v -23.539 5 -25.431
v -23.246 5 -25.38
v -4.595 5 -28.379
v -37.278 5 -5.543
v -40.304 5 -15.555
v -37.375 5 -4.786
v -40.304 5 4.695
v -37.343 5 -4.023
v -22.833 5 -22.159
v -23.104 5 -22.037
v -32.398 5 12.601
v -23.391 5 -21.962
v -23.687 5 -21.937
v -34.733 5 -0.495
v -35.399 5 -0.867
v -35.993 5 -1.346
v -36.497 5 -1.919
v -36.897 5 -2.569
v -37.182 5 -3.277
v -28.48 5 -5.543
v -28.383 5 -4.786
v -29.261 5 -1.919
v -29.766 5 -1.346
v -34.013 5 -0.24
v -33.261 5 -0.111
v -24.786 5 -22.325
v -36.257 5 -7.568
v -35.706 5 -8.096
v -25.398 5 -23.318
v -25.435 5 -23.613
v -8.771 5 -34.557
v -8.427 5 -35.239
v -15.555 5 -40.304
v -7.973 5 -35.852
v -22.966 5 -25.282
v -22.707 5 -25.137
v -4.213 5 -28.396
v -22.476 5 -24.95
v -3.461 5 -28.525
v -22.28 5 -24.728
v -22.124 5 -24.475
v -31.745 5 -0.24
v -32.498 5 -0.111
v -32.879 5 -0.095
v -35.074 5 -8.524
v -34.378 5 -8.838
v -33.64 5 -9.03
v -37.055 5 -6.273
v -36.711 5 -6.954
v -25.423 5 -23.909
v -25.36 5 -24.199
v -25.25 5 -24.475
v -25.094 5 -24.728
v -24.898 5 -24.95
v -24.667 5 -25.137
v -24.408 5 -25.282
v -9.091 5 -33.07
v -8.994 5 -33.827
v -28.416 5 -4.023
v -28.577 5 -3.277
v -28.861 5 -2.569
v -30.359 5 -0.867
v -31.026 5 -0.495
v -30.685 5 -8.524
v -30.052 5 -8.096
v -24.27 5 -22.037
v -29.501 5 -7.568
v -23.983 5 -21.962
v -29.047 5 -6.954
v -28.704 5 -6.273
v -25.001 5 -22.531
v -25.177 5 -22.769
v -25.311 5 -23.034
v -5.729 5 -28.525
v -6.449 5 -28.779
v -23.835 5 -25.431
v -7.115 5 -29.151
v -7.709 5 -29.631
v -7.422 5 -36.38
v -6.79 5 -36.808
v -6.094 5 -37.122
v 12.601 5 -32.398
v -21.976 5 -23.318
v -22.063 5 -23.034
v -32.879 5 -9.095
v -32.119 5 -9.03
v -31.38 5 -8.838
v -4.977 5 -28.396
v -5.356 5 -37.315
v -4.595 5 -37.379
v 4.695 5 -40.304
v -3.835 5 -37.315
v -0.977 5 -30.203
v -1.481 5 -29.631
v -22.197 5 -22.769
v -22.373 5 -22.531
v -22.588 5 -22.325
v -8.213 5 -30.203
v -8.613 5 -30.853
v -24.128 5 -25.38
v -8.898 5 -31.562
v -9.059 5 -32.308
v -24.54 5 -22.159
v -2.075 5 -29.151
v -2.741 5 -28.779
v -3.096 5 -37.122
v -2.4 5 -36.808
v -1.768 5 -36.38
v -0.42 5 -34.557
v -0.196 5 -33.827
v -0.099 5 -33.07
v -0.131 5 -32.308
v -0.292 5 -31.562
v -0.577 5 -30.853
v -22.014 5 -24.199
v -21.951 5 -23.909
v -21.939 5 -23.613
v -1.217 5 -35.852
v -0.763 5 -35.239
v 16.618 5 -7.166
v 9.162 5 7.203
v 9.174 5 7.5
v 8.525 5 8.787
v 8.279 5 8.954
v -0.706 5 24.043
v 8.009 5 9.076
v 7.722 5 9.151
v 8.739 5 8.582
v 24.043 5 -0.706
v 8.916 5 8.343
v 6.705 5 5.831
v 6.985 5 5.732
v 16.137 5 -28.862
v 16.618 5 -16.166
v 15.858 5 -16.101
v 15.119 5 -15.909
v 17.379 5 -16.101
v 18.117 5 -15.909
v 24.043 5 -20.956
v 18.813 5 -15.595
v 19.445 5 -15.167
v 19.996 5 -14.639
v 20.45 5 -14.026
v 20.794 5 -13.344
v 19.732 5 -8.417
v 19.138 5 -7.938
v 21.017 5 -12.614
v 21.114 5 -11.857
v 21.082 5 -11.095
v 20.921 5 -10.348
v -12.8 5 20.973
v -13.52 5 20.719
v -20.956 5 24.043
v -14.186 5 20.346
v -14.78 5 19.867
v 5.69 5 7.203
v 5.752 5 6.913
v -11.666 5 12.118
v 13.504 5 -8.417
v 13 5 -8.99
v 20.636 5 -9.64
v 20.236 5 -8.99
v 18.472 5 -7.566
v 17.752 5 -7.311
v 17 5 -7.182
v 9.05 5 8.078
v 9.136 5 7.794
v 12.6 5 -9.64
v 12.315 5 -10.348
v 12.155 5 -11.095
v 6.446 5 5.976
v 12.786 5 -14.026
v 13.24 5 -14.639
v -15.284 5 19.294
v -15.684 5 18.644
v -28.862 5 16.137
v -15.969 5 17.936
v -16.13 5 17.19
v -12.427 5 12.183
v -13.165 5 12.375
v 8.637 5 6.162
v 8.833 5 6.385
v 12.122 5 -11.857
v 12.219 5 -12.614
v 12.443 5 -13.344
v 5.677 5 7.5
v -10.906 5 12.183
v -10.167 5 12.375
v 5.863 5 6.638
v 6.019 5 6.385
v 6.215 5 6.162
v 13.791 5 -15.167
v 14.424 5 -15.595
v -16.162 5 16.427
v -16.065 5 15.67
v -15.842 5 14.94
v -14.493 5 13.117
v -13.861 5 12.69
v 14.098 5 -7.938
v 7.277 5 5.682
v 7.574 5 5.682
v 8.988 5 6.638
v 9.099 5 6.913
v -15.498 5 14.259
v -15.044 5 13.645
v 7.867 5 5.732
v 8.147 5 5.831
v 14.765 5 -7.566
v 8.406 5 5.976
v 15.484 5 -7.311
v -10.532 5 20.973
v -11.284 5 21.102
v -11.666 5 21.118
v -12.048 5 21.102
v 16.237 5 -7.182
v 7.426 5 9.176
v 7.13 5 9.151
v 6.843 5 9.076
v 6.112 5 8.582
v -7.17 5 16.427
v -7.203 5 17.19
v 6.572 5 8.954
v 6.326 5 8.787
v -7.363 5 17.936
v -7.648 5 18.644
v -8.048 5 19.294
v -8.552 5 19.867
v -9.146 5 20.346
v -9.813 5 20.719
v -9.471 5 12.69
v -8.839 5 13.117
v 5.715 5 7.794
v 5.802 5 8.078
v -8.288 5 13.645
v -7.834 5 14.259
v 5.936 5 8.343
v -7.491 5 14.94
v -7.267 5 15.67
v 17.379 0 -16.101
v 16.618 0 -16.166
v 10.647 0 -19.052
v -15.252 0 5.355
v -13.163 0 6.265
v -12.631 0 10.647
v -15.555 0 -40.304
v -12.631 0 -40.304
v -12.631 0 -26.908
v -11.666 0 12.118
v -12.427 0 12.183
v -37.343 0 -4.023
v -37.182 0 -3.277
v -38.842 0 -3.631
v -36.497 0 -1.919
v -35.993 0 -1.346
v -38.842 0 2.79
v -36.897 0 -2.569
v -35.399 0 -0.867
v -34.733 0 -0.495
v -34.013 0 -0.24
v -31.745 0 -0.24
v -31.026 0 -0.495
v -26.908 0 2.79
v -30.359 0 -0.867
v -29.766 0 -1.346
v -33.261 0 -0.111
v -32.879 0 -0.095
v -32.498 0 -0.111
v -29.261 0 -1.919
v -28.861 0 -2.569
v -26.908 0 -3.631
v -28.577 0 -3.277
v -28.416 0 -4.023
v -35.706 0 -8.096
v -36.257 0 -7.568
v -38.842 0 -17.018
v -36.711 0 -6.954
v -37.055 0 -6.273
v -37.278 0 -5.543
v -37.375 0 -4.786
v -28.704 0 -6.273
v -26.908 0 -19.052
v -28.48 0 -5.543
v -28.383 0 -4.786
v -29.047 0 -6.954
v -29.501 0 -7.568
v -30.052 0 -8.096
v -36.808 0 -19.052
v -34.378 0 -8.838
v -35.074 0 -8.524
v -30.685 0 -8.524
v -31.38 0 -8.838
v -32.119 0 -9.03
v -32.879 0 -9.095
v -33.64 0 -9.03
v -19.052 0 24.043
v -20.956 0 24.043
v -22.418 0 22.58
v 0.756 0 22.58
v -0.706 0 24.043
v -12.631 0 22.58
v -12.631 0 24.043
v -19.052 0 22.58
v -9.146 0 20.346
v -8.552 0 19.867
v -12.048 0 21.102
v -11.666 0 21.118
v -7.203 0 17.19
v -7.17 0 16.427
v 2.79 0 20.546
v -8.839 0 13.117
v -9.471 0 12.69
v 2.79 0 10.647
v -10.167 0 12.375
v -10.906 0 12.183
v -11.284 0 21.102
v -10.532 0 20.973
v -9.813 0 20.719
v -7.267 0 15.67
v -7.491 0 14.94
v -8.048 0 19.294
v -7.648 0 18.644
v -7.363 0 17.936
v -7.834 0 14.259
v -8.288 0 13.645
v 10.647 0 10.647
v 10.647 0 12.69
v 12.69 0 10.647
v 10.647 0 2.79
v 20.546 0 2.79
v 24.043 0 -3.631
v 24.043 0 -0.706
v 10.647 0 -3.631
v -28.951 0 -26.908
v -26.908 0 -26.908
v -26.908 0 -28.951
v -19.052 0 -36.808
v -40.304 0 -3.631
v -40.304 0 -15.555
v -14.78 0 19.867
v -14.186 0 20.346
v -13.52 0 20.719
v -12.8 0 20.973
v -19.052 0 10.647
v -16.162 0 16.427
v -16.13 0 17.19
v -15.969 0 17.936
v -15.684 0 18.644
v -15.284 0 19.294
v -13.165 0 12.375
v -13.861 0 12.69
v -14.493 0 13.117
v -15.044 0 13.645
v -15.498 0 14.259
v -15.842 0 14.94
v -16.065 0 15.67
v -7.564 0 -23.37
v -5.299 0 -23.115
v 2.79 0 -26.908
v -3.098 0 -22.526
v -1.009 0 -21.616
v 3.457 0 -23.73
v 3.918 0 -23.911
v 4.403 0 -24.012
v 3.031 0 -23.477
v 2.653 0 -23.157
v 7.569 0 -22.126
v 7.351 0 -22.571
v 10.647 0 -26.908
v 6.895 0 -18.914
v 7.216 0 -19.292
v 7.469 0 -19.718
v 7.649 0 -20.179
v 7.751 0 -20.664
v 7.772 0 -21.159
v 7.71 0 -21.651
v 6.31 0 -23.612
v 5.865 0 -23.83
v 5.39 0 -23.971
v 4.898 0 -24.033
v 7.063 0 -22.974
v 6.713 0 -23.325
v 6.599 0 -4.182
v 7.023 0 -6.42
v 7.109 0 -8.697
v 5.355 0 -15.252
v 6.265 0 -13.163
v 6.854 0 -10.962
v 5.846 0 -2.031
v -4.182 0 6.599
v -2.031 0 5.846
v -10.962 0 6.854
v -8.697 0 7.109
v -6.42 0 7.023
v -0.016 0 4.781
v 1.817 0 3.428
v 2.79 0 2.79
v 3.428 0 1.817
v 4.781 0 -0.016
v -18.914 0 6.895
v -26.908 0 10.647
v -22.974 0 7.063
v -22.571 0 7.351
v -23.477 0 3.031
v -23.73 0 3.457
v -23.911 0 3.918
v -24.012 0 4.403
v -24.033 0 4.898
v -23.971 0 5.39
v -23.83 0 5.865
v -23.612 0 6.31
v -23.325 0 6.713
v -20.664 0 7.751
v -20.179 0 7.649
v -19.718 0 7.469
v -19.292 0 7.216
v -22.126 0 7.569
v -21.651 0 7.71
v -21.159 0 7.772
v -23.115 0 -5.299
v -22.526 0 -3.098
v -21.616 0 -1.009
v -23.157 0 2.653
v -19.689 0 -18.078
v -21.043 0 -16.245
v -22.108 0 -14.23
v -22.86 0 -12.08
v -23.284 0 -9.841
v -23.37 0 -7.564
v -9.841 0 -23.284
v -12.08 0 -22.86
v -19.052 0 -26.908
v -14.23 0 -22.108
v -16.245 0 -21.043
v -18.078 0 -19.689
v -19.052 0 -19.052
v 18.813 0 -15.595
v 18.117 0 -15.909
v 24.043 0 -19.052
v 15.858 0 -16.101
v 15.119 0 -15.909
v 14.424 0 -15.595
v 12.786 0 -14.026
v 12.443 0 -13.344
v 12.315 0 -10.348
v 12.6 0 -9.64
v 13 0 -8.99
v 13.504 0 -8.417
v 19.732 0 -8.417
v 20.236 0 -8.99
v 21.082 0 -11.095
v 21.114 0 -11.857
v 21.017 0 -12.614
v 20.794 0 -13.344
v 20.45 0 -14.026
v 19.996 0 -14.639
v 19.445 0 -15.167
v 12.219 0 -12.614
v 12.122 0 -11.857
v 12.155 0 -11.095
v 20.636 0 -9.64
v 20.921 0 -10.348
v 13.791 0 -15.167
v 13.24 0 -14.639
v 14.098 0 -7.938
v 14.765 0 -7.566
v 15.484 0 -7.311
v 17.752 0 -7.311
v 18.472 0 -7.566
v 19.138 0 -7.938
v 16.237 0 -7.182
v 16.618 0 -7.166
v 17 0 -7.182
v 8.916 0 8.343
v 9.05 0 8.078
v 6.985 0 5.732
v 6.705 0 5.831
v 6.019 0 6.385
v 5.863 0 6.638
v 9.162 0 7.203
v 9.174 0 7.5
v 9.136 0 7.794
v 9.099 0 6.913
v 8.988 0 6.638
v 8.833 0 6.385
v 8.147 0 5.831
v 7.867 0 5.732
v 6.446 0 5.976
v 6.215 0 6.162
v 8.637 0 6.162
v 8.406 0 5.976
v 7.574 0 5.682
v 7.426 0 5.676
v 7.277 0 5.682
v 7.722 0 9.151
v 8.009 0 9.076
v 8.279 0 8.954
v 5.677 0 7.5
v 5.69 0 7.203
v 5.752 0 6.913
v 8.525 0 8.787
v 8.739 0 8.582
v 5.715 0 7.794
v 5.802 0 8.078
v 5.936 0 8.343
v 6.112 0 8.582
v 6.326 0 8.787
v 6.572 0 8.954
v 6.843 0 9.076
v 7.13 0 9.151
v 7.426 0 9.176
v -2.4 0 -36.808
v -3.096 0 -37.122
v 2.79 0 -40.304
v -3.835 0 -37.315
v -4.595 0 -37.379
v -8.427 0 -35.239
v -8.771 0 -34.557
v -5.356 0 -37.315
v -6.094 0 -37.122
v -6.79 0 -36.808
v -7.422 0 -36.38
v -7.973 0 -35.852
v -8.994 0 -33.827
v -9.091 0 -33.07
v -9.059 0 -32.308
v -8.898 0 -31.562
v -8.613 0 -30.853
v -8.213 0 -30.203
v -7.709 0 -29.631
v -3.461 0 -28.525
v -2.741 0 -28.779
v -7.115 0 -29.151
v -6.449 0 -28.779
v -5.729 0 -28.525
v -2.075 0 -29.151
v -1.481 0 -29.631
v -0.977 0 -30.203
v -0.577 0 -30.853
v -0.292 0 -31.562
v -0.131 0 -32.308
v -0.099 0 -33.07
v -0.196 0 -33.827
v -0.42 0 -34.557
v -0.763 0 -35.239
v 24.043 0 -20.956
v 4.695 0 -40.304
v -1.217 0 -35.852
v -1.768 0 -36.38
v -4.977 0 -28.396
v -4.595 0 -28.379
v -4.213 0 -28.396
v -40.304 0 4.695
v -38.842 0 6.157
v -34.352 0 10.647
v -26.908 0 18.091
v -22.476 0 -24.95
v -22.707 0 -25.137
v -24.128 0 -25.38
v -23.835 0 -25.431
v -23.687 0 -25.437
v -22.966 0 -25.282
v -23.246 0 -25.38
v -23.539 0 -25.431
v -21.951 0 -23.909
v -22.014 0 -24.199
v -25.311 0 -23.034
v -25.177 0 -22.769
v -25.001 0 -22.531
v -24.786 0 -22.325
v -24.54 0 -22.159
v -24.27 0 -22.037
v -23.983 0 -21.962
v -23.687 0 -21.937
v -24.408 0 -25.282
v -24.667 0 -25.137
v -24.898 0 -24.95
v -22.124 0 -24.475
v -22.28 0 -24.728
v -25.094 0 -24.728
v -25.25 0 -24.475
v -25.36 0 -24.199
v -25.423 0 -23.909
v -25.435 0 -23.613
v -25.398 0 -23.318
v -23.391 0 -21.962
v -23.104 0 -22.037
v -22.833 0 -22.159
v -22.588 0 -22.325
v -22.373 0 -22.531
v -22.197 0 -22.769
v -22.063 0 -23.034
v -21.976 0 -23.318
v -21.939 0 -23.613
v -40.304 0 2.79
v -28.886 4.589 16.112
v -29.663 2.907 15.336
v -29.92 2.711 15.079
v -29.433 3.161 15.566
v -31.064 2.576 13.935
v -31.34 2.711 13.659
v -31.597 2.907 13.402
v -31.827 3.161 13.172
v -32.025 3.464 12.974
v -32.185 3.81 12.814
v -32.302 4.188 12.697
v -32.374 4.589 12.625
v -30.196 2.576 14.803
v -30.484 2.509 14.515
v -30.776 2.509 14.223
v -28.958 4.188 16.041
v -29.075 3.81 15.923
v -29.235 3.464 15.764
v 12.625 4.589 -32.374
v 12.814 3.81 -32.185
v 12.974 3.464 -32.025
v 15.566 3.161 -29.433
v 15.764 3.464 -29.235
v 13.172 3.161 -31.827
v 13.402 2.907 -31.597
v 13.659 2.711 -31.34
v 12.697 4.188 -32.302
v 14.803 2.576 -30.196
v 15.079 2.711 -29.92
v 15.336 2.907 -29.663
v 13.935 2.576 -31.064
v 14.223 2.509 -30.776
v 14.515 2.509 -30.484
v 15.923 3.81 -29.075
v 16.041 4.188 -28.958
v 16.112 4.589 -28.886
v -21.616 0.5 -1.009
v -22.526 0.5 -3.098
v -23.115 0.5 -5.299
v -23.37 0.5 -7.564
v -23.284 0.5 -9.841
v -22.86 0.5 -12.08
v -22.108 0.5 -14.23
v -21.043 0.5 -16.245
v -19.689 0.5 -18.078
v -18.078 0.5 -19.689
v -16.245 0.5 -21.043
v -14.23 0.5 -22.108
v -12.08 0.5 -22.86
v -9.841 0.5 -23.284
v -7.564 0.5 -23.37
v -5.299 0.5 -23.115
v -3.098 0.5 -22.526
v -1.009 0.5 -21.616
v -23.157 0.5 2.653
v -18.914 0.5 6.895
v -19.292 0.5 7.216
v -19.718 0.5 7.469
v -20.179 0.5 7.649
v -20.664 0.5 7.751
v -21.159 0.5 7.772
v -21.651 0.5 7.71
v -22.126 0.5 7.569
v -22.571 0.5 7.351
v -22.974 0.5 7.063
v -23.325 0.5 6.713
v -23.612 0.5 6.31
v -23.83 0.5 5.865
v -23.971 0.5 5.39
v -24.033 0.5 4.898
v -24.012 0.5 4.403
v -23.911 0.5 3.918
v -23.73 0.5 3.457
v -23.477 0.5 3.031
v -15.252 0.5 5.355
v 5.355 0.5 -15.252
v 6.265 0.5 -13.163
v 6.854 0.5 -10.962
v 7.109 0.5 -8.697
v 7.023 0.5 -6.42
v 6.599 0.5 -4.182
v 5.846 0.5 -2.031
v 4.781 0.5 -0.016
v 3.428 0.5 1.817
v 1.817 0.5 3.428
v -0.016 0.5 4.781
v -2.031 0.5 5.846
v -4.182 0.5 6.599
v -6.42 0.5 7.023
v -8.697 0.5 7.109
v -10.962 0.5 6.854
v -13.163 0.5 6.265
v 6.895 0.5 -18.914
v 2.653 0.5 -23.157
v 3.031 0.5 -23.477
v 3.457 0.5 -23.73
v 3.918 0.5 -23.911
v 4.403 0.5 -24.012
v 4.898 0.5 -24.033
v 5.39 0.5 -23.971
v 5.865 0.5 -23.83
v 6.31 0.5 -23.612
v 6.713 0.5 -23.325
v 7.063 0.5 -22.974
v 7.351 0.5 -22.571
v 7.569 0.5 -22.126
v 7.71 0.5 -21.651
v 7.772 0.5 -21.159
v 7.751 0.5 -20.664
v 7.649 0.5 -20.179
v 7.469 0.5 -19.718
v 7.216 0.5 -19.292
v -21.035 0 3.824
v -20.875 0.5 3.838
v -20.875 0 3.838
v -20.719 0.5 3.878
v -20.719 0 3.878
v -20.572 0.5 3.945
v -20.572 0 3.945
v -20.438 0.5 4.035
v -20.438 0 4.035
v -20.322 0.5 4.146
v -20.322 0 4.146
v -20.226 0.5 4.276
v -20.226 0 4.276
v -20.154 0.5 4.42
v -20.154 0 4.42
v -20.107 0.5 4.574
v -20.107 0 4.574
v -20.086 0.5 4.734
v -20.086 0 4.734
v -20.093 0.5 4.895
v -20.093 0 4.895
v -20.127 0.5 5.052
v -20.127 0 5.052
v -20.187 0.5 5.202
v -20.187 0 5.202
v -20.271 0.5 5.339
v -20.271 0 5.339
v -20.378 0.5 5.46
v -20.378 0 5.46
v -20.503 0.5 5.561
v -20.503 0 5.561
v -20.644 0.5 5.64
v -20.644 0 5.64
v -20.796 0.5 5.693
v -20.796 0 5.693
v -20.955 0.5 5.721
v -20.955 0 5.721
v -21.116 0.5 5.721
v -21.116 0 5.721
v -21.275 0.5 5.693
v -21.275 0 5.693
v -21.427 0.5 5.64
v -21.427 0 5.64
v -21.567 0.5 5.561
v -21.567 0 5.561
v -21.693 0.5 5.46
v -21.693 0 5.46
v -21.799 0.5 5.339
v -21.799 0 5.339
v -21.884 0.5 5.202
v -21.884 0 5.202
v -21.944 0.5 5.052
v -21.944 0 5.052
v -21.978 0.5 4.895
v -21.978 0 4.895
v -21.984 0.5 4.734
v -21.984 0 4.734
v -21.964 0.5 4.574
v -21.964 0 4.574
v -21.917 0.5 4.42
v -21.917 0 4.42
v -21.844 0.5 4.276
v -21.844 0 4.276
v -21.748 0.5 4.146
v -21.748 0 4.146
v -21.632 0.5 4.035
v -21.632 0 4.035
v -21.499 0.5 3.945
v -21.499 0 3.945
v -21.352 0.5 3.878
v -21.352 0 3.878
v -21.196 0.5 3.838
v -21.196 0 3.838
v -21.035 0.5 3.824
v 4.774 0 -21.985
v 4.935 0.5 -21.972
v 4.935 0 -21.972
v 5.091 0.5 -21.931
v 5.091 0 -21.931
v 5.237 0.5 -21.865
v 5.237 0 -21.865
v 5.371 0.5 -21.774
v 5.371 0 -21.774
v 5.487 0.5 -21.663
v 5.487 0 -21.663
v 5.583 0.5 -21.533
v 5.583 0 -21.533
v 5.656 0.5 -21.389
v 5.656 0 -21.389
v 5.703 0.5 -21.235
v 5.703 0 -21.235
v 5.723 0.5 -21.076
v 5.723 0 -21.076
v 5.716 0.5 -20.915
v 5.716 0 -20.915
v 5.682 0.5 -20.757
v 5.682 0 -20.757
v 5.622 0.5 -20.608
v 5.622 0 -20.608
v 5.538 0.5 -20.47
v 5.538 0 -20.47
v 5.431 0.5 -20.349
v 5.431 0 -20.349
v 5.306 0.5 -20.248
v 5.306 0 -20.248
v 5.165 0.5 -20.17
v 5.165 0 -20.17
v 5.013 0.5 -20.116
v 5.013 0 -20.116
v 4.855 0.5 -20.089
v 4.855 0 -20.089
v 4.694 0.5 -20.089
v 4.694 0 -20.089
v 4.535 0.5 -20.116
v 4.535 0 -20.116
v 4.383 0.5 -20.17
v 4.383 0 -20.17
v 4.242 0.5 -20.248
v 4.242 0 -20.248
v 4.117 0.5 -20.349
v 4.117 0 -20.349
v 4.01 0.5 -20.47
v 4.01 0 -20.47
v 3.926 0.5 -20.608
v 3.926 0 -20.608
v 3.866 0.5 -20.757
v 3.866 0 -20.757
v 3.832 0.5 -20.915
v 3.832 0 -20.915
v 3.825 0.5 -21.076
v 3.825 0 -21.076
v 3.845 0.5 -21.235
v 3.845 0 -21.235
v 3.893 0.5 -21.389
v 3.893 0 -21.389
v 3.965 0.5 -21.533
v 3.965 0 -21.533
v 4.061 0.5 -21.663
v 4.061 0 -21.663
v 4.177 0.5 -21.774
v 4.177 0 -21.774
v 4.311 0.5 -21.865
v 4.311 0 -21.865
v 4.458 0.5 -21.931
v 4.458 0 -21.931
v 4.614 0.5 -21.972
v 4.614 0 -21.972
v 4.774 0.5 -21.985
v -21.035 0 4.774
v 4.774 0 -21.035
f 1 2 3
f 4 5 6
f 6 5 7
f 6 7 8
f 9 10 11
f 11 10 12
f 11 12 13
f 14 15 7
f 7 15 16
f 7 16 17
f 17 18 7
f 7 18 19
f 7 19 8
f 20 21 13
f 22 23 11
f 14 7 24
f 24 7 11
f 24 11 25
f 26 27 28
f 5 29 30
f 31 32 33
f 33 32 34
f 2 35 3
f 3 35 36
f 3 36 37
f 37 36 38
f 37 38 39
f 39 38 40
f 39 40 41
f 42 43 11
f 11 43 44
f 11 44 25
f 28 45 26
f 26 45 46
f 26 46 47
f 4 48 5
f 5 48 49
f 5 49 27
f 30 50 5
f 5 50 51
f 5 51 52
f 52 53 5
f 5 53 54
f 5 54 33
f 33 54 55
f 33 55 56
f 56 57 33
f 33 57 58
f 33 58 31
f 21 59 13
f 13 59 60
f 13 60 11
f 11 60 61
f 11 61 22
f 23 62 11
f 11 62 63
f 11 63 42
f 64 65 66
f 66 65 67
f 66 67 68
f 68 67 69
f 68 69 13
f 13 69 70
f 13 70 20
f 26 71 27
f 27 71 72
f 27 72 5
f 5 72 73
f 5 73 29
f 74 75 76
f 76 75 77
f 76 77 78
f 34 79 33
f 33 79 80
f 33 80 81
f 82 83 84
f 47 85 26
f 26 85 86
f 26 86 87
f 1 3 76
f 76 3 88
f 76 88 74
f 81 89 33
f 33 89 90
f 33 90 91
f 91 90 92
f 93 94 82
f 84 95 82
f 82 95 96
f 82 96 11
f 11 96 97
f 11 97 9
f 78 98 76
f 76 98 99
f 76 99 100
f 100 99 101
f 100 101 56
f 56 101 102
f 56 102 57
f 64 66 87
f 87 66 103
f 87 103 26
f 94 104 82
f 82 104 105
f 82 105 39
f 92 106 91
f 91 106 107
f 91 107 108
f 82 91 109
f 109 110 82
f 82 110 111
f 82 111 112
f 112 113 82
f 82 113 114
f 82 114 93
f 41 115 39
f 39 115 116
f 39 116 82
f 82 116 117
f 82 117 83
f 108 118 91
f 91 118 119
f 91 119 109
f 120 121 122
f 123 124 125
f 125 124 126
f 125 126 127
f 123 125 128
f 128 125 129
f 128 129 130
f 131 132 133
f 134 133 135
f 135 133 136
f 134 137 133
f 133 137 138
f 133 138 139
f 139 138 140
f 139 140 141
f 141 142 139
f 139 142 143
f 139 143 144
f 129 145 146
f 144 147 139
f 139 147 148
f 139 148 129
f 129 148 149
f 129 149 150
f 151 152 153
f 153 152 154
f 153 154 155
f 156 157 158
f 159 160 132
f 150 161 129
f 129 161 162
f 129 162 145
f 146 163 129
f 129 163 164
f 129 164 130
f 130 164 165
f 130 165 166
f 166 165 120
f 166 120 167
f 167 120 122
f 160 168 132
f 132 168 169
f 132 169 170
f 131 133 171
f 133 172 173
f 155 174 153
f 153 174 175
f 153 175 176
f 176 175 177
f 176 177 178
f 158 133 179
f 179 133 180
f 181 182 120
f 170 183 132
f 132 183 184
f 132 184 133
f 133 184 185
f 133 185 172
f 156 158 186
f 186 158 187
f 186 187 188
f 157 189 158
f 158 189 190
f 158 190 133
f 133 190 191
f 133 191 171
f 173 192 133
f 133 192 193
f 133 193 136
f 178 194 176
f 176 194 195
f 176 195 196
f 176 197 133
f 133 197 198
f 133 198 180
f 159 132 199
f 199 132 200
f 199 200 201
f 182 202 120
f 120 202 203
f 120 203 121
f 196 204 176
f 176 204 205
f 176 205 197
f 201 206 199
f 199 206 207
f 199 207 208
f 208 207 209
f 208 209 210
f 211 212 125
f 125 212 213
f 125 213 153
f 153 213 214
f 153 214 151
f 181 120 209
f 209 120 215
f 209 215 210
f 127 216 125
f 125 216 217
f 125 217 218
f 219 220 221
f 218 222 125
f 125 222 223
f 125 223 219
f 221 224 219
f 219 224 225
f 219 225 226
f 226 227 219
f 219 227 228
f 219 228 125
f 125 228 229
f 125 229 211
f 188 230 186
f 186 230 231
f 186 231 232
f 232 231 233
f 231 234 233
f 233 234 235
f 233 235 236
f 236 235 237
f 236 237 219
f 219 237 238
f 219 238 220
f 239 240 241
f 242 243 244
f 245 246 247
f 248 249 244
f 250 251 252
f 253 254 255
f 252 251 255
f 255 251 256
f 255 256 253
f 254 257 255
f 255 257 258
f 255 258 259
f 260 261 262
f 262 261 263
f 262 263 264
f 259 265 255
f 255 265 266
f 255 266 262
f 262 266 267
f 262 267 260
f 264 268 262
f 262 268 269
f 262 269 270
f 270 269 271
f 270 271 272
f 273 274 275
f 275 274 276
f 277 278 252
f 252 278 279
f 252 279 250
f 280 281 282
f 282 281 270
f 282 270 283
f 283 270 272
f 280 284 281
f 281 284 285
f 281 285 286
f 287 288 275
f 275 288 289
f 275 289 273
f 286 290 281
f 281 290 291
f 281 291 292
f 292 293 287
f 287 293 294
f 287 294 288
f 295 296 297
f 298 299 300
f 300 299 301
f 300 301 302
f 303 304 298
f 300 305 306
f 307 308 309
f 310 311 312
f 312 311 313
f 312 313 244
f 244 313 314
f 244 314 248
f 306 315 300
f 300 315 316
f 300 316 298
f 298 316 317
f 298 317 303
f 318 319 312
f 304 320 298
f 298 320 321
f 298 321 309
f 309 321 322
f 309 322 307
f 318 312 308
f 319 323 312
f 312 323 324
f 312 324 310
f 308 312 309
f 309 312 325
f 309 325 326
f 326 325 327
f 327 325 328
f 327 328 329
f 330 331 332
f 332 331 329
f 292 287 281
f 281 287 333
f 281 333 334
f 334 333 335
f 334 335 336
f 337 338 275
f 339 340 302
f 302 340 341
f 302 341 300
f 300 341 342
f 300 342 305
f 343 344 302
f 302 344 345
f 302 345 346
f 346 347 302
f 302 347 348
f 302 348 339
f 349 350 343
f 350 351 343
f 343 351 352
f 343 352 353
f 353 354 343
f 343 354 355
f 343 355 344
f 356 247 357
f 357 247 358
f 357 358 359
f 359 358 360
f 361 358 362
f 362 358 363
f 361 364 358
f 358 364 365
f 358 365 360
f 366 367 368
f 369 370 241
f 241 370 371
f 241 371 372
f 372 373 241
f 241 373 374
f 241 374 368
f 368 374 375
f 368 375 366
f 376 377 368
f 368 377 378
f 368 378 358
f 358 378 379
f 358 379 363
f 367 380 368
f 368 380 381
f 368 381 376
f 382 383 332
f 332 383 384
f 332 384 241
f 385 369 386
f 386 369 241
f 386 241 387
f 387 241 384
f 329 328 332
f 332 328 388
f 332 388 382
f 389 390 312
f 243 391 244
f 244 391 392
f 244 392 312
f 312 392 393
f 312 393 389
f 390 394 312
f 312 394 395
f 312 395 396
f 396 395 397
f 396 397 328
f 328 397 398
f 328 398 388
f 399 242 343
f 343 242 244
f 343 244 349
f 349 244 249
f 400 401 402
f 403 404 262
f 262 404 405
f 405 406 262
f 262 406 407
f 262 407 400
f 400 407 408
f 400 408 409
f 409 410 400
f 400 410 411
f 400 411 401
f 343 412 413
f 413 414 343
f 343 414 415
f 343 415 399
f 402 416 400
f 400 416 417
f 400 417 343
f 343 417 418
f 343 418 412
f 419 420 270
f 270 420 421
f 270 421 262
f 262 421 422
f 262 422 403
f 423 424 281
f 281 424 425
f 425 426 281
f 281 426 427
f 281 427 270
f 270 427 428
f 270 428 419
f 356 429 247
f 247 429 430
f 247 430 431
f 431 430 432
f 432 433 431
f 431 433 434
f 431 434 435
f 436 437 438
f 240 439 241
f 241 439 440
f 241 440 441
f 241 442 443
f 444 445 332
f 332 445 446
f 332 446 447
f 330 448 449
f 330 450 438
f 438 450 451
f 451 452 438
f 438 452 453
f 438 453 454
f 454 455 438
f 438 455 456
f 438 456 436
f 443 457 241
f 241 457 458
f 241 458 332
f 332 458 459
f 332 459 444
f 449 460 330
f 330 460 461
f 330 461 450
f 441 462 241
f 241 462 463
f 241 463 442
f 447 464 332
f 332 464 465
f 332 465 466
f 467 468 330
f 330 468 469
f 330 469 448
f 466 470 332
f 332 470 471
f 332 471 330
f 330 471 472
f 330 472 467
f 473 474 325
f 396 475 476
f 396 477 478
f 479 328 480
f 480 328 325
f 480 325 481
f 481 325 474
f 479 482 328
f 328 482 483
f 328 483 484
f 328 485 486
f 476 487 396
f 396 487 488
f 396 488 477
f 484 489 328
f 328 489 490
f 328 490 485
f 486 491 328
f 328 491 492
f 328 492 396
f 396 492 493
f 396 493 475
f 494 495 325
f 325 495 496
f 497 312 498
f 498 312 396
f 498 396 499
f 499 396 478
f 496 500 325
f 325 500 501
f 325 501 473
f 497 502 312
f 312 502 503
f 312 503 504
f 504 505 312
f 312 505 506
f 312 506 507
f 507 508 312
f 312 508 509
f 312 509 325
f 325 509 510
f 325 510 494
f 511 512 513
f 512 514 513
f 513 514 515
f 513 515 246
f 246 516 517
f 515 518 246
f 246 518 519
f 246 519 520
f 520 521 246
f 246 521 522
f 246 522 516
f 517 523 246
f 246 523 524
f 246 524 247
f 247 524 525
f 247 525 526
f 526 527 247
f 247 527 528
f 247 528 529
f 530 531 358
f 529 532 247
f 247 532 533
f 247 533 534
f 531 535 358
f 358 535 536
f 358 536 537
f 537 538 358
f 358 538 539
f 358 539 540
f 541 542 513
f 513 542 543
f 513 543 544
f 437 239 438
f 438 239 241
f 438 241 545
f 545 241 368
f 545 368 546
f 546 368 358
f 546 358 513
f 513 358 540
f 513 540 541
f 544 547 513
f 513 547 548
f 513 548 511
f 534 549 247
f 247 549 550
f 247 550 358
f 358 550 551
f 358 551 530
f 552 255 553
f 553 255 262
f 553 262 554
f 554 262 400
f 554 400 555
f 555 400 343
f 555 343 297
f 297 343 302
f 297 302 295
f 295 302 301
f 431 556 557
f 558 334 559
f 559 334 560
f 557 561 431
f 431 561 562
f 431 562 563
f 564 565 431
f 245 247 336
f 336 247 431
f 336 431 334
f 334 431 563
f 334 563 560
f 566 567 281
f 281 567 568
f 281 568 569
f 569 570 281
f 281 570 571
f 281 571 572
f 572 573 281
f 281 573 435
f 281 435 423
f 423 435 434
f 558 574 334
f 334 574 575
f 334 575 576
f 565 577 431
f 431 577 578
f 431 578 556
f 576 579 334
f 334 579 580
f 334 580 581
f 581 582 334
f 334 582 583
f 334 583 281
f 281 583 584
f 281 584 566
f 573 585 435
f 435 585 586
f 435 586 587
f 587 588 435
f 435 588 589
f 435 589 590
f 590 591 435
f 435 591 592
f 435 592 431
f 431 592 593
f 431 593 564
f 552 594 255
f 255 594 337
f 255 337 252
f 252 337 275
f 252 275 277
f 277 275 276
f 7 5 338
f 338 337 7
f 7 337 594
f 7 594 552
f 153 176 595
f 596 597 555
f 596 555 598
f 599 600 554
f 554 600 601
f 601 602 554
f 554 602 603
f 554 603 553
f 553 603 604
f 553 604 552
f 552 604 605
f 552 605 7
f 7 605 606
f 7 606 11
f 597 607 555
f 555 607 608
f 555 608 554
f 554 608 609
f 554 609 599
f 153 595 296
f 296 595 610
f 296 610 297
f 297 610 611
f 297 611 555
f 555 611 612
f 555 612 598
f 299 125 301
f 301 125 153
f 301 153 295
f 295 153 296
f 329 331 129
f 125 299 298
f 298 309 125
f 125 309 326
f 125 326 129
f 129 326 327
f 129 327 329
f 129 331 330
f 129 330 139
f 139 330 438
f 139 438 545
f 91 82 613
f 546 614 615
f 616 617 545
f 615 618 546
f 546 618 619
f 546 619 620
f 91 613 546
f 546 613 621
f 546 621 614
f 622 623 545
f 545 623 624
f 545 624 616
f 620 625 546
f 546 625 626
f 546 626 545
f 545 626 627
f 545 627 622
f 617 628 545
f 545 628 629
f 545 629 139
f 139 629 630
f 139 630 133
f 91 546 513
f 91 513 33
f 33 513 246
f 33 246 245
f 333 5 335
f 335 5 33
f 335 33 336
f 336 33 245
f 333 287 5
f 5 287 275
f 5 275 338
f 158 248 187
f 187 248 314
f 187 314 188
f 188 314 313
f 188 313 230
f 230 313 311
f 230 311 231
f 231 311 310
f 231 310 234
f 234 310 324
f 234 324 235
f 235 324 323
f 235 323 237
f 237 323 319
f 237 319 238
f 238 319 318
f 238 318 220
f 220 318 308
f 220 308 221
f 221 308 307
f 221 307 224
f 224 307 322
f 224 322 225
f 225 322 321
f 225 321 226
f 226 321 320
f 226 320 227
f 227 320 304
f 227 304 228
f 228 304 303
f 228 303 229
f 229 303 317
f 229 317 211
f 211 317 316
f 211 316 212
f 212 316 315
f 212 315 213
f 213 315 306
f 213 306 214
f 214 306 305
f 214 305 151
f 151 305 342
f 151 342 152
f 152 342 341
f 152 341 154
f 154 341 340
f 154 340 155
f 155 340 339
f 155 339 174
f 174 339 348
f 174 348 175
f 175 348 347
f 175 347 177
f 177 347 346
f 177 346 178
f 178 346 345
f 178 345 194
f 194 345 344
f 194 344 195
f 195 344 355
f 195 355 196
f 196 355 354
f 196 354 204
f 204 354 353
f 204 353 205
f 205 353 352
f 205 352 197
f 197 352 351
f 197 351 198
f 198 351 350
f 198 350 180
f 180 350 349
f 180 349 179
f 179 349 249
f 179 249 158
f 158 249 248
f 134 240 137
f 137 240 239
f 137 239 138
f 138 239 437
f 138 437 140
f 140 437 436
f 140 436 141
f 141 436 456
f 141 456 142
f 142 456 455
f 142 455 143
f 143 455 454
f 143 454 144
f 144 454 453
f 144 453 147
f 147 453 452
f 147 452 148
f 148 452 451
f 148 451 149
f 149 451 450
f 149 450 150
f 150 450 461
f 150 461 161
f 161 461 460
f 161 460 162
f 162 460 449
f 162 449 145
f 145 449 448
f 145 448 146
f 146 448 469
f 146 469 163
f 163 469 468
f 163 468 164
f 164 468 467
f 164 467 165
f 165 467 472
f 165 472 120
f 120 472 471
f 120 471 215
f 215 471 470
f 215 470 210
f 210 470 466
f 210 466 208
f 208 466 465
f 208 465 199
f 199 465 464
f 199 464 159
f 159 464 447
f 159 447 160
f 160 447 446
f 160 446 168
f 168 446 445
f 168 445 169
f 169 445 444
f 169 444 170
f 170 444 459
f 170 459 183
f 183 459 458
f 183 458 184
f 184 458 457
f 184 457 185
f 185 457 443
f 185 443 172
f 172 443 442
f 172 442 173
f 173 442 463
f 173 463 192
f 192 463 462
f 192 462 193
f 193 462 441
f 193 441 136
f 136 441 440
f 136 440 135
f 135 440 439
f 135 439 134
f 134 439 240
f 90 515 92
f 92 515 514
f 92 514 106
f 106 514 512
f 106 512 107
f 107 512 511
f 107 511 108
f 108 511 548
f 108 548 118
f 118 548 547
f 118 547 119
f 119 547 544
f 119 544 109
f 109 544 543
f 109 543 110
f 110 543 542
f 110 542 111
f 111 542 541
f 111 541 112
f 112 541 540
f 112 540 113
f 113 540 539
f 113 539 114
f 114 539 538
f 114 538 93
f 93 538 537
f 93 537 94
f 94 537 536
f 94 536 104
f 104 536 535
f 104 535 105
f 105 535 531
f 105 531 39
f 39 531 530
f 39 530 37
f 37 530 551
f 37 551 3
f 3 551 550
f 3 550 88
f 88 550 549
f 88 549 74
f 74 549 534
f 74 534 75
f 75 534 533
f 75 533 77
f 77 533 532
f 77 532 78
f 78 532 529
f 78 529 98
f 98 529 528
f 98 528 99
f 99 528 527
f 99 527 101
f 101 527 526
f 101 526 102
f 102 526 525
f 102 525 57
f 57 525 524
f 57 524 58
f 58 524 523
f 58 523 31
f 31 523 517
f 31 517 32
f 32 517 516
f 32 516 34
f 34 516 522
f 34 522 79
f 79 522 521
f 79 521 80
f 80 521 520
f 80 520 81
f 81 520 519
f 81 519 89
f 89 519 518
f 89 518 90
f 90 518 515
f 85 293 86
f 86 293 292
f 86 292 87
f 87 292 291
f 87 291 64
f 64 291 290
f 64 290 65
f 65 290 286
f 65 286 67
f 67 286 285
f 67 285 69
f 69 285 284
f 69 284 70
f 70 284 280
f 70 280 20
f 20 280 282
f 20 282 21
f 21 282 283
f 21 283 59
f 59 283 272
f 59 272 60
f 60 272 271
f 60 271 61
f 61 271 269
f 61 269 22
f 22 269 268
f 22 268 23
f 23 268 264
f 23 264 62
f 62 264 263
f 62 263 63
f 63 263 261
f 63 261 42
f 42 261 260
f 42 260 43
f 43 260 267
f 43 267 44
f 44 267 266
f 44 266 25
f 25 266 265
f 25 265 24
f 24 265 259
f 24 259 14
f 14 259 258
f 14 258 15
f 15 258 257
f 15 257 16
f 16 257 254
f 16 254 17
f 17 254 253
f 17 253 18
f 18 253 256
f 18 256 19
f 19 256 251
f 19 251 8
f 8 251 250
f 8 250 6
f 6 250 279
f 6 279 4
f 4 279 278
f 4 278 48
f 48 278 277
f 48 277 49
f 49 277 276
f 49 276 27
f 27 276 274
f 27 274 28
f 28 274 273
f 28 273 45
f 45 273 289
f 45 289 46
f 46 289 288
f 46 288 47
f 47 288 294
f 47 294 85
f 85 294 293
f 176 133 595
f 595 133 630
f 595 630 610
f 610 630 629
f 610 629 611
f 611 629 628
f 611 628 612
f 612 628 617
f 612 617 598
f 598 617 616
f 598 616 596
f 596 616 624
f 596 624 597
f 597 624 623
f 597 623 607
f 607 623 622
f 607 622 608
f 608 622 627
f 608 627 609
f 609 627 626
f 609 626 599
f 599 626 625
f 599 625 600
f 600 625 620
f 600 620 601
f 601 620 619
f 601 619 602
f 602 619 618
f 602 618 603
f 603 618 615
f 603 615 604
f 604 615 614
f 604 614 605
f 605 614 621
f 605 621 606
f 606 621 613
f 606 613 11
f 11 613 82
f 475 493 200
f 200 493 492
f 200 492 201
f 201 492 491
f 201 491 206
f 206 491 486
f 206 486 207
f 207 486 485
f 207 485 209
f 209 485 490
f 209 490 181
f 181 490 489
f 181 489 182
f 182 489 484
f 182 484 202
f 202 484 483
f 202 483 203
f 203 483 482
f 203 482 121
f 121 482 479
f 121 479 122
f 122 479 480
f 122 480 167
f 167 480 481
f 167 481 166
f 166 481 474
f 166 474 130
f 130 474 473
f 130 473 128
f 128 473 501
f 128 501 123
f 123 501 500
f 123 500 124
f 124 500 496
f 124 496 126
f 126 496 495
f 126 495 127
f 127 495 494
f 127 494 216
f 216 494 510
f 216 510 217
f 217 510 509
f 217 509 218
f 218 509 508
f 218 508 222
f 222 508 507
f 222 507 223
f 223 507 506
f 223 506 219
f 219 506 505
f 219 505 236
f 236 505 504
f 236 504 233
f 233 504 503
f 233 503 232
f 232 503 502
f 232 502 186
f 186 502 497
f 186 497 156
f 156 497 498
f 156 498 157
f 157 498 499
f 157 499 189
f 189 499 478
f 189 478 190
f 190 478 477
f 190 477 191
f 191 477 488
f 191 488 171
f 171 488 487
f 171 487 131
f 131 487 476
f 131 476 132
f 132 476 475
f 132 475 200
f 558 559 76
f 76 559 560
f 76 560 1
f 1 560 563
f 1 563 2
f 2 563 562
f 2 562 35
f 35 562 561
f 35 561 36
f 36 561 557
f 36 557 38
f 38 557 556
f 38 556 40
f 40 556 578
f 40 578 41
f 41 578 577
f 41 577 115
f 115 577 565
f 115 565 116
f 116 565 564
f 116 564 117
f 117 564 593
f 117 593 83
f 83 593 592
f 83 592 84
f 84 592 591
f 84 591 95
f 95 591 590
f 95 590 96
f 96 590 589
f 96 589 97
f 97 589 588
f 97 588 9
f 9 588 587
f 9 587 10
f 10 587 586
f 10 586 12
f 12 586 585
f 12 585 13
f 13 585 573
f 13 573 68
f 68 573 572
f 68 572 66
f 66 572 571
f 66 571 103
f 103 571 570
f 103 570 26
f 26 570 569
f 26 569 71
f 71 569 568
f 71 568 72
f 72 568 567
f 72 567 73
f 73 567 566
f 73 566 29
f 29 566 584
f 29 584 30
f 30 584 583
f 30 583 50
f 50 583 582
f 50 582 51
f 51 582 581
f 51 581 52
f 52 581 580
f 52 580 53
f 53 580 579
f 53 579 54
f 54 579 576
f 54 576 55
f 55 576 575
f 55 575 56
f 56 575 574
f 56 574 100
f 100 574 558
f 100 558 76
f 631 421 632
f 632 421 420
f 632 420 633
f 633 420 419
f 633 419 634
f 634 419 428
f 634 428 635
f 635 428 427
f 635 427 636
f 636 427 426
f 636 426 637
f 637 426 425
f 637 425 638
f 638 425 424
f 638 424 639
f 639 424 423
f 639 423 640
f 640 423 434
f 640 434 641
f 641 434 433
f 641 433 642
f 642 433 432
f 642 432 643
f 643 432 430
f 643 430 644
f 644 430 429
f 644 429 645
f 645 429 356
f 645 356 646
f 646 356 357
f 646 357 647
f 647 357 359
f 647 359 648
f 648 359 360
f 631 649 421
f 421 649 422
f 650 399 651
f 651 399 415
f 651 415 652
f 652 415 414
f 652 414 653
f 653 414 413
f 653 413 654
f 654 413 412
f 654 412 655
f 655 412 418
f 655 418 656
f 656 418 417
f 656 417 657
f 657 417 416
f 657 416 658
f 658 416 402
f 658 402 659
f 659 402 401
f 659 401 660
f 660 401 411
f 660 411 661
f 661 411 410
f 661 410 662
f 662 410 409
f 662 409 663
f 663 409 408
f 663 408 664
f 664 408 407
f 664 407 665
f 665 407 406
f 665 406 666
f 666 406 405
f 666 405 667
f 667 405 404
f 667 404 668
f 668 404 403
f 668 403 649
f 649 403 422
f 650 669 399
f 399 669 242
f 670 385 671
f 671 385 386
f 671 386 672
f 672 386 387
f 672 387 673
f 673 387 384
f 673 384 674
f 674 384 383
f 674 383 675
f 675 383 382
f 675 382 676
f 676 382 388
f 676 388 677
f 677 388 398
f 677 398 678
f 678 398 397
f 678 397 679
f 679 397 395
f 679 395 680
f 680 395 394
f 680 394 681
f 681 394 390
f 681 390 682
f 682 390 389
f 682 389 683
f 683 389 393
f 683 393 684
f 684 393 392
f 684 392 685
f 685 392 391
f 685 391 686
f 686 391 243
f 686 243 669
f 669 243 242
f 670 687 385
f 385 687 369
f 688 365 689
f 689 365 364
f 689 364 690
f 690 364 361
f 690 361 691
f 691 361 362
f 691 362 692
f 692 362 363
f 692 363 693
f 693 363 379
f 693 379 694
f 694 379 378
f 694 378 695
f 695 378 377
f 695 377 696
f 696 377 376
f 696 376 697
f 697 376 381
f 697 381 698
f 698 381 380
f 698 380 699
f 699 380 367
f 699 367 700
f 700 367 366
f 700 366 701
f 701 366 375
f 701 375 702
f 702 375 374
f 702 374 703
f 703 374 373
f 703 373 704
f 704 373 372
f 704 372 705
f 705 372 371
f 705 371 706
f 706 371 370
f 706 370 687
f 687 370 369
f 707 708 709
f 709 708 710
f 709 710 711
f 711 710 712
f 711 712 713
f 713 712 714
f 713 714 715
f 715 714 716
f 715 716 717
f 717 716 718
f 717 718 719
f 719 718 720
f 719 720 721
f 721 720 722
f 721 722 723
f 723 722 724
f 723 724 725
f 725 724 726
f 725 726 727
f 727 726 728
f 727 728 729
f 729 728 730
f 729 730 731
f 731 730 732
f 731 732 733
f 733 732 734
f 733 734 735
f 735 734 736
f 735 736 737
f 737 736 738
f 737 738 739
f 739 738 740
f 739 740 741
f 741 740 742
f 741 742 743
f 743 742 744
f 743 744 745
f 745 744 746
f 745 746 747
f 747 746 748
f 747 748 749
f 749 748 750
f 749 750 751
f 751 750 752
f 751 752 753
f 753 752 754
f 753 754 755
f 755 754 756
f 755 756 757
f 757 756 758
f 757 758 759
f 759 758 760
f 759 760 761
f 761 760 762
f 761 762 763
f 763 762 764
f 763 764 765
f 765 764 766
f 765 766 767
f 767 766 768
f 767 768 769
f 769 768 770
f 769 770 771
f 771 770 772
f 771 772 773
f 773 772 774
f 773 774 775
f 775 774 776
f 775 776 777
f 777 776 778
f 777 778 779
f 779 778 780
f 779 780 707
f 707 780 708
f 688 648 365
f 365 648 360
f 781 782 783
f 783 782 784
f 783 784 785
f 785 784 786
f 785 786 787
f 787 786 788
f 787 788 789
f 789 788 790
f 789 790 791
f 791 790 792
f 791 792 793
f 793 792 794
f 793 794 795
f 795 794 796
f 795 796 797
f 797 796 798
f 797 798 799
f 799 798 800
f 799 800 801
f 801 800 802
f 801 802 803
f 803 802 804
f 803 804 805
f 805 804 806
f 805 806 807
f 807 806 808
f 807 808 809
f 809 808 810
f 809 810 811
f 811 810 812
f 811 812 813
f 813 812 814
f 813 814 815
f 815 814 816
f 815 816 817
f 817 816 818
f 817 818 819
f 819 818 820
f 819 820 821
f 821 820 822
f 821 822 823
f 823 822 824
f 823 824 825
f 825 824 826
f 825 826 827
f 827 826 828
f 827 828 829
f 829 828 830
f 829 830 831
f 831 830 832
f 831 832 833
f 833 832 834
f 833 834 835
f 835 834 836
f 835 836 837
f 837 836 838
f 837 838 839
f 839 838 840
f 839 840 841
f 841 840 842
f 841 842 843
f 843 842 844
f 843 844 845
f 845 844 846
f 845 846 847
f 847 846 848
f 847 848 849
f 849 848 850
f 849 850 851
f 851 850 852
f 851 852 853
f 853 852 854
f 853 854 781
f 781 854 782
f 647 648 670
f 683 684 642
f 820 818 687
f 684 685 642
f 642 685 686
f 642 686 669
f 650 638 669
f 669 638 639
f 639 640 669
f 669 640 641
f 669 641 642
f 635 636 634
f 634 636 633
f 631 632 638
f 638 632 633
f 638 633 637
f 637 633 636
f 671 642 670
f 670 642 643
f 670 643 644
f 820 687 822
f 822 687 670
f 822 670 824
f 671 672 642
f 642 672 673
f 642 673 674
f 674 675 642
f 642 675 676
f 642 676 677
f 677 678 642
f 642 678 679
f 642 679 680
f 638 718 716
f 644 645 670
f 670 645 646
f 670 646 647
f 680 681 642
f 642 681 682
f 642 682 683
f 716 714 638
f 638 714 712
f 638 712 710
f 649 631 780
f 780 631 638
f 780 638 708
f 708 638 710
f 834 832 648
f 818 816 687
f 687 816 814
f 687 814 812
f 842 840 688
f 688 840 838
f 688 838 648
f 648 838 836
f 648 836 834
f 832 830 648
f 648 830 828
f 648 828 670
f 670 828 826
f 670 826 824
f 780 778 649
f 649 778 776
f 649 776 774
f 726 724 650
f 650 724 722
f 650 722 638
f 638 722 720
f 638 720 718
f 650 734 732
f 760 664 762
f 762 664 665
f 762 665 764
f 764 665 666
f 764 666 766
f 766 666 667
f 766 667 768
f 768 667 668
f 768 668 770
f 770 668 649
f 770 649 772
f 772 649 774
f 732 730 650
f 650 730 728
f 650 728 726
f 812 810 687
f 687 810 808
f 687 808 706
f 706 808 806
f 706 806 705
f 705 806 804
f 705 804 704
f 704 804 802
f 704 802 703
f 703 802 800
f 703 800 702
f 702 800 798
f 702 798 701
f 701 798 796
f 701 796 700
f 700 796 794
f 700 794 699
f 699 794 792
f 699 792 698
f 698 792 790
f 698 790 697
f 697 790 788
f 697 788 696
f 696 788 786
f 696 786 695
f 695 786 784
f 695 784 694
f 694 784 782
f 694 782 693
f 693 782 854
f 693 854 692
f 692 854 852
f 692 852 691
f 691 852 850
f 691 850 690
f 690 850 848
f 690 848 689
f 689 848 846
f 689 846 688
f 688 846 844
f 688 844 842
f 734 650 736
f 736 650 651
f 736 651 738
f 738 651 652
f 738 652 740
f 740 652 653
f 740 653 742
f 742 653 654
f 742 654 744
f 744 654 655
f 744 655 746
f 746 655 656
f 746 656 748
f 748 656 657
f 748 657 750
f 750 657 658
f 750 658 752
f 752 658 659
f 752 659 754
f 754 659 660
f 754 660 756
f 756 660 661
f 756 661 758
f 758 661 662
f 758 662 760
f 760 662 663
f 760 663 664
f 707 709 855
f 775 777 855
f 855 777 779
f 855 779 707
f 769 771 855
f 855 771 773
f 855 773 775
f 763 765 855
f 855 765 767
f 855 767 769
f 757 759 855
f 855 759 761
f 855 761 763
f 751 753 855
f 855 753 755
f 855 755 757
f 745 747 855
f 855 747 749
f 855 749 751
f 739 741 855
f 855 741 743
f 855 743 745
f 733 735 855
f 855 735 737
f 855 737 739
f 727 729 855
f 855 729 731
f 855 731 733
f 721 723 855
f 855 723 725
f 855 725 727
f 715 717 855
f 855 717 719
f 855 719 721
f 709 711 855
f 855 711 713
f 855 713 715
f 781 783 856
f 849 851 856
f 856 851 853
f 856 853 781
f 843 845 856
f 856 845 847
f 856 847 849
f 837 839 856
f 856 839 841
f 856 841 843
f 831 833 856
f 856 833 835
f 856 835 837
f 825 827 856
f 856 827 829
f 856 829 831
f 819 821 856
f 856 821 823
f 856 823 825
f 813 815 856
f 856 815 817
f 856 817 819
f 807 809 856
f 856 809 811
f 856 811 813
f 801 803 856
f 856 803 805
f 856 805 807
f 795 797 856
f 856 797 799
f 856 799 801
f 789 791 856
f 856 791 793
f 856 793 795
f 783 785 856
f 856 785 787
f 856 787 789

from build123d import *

# Parameters (mm, degrees)
SKETCH1_R           = 4.5
BOSS_EXTRUDE1_DEPTH = 5
CUT_EXTRUDE1_REACH  = 80.329
CUT_EXTRUDE3_REACH  = 59.217
SKETCH6_R           = 1.75
SKETCH8_R           = 15.25
SKETCH8_R_2         = 0.95
CUT_EXTRUDE7_DEPTH  = 0.5


with BuildPart() as part:
    # Sketch1 → Boss-Extrude1 (new body)
    with BuildSketch(Plane(origin=(0, 0, 0), x_dir=(1, 0, 0), z_dir=(0, 1, 0))):
        Polygon((-40.303943114, 15.555205773), (-15.555205773, 40.303943114), (4.694794227, 40.303943114), (24.042773974, 20.955963368), (24.042773974, 0.705963368), (-0.705963368, -24.042773974), (-20.955963368, -24.042773974), (-40.303943114, -4.694794227), align=None)
        with Locations(Location((-11.666118476, -16.618152771, 0), (0, 0, 270))):
            Circle(SKETCH1_R, mode=Mode.SUBTRACT)
        with Locations(Location((16.618152771, 11.666118476, 0), (0, 0, 270))):
            Circle(SKETCH1_R, mode=Mode.SUBTRACT)
        with Locations(Location((-4.595050664, 32.879321912, 0), (0, 0, 270))):
            Circle(SKETCH1_R, mode=Mode.SUBTRACT)
        with Locations(Location((-32.879321912, 4.595050664, 0), (0, 0, 270))):
            Circle(SKETCH1_R, mode=Mode.SUBTRACT)
    extrude(amount=BOSS_EXTRUDE1_DEPTH)

    # Sketch4 → Cut-Extrude1 (cut, up to next)
    with BuildSketch(Plane(origin=(22.499368671, 0, -22.499368671), x_dir=(-0.7071067811865465, 0, -0.7071067811865487), z_dir=(0.7071067811865487, 0, -0.7071067811865465)), mode=Mode.PRIVATE) as cut_extrude1_sk1:
        with BuildLine():
            Line((13.998382969, 5), (8.998382969, 5))
            ThreePointArc((8.998382969, 5), (11.498382969, 2.5), (13.998382969, 5))
        make_face()
    cut_extrude1_tool1 = extrude(cut_extrude1_sk1.sketch, amount=-CUT_EXTRUDE1_REACH, mode=Mode.PRIVATE) & part.part
    add(cut_extrude1_tool1.solids().sort_by_distance((14.368784, 3.938967, -30.629953))[0], mode=Mode.SUBTRACT)

    # Sketch6 → Cut-Extrude3 (cut, up to next)
    with BuildSketch(Plane(origin=(0, 5, 0), x_dir=(1, 0, 0), z_dir=(0, 1, 0)), mode=Mode.PRIVATE) as cut_extrude3_sk1:
        with Locations(Location((-23.686933757, 23.686933757, 0), (0, 0, 270))):
            Circle(SKETCH6_R)
    cut_extrude3_tool1 = extrude(cut_extrude3_sk1.sketch, amount=-CUT_EXTRUDE3_REACH, mode=Mode.PRIVATE) & part.part
    # Sketch6 → Cut-Extrude3 (cut, up to next)
    with BuildSketch(Plane(origin=(0, 5, 0), x_dir=(1, 0, 0), z_dir=(0, 1, 0)), mode=Mode.PRIVATE) as cut_extrude3_sk2:
        with Locations(Location((7.425764616, -7.425764616, 0), (0, 0, 270))):
            Circle(SKETCH6_R)
    cut_extrude3_tool2 = extrude(cut_extrude3_sk2.sketch, amount=-CUT_EXTRUDE3_REACH, mode=Mode.PRIVATE) & part.part
    add(cut_extrude3_tool1.solids().sort_by_distance((-23.686934, 5, -23.686934))[0], mode=Mode.SUBTRACT)
    add(cut_extrude3_tool2.solids().sort_by_distance((7.425765, 5, 7.425765))[0], mode=Mode.SUBTRACT)

    # Sketch8 → Cut-Extrude7 (cut)
    # profile 1 of 3: a face of its own
    with BuildSketch(Plane.XZ):
        with Locations((-8.13058457, -8.13058457)):
            Circle(SKETCH8_R)
    # profile 2 of 3: a face of its own
    with BuildSketch(Plane.XZ):
        with BuildLine():
            Line((-23.156603671, 2.652793843), (-21.615780603, -1.009349568))
            ThreePointArc((-21.615780603, -1.009349568), (-18.913962984, 2.652793843), (-15.251819573, 5.354611462))
            Line((-15.251819573, 5.354611462), (-18.913962984, 6.89543453))
            ThreePointArc((-18.913962984, 6.89543453), (-23.156603671, 6.89543453), (-23.156603671, 2.652793843))
        make_face()
        with Locations(Location((-21.035283327, 4.774114186, 0), (0, 0, 270))):
            Circle(SKETCH8_R_2, mode=Mode.SUBTRACT)
    # profile 3 of 3: a face of its own
    with BuildSketch(Plane.XZ):
        with BuildLine():
            Line((-1.009349568, -21.615780603), (2.652793843, -23.156603671))
            ThreePointArc((2.652793843, -23.156603671), (6.89543453, -23.156603671), (6.89543453, -18.913962984))
            Line((6.89543453, -18.913962984), (5.354611462, -15.251819573))
            ThreePointArc((5.354611462, -15.251819573), (2.652793843, -18.913962984), (-1.009349568, -21.615780603))
        make_face()
        with Locations(Location((4.774114186, -21.035283327, 0), (0, 0, 270))):
            Circle(SKETCH8_R_2, mode=Mode.SUBTRACT)
    extrude(amount=-CUT_EXTRUDE7_DEPTH, mode=Mode.SUBTRACT)


solid = part.part
